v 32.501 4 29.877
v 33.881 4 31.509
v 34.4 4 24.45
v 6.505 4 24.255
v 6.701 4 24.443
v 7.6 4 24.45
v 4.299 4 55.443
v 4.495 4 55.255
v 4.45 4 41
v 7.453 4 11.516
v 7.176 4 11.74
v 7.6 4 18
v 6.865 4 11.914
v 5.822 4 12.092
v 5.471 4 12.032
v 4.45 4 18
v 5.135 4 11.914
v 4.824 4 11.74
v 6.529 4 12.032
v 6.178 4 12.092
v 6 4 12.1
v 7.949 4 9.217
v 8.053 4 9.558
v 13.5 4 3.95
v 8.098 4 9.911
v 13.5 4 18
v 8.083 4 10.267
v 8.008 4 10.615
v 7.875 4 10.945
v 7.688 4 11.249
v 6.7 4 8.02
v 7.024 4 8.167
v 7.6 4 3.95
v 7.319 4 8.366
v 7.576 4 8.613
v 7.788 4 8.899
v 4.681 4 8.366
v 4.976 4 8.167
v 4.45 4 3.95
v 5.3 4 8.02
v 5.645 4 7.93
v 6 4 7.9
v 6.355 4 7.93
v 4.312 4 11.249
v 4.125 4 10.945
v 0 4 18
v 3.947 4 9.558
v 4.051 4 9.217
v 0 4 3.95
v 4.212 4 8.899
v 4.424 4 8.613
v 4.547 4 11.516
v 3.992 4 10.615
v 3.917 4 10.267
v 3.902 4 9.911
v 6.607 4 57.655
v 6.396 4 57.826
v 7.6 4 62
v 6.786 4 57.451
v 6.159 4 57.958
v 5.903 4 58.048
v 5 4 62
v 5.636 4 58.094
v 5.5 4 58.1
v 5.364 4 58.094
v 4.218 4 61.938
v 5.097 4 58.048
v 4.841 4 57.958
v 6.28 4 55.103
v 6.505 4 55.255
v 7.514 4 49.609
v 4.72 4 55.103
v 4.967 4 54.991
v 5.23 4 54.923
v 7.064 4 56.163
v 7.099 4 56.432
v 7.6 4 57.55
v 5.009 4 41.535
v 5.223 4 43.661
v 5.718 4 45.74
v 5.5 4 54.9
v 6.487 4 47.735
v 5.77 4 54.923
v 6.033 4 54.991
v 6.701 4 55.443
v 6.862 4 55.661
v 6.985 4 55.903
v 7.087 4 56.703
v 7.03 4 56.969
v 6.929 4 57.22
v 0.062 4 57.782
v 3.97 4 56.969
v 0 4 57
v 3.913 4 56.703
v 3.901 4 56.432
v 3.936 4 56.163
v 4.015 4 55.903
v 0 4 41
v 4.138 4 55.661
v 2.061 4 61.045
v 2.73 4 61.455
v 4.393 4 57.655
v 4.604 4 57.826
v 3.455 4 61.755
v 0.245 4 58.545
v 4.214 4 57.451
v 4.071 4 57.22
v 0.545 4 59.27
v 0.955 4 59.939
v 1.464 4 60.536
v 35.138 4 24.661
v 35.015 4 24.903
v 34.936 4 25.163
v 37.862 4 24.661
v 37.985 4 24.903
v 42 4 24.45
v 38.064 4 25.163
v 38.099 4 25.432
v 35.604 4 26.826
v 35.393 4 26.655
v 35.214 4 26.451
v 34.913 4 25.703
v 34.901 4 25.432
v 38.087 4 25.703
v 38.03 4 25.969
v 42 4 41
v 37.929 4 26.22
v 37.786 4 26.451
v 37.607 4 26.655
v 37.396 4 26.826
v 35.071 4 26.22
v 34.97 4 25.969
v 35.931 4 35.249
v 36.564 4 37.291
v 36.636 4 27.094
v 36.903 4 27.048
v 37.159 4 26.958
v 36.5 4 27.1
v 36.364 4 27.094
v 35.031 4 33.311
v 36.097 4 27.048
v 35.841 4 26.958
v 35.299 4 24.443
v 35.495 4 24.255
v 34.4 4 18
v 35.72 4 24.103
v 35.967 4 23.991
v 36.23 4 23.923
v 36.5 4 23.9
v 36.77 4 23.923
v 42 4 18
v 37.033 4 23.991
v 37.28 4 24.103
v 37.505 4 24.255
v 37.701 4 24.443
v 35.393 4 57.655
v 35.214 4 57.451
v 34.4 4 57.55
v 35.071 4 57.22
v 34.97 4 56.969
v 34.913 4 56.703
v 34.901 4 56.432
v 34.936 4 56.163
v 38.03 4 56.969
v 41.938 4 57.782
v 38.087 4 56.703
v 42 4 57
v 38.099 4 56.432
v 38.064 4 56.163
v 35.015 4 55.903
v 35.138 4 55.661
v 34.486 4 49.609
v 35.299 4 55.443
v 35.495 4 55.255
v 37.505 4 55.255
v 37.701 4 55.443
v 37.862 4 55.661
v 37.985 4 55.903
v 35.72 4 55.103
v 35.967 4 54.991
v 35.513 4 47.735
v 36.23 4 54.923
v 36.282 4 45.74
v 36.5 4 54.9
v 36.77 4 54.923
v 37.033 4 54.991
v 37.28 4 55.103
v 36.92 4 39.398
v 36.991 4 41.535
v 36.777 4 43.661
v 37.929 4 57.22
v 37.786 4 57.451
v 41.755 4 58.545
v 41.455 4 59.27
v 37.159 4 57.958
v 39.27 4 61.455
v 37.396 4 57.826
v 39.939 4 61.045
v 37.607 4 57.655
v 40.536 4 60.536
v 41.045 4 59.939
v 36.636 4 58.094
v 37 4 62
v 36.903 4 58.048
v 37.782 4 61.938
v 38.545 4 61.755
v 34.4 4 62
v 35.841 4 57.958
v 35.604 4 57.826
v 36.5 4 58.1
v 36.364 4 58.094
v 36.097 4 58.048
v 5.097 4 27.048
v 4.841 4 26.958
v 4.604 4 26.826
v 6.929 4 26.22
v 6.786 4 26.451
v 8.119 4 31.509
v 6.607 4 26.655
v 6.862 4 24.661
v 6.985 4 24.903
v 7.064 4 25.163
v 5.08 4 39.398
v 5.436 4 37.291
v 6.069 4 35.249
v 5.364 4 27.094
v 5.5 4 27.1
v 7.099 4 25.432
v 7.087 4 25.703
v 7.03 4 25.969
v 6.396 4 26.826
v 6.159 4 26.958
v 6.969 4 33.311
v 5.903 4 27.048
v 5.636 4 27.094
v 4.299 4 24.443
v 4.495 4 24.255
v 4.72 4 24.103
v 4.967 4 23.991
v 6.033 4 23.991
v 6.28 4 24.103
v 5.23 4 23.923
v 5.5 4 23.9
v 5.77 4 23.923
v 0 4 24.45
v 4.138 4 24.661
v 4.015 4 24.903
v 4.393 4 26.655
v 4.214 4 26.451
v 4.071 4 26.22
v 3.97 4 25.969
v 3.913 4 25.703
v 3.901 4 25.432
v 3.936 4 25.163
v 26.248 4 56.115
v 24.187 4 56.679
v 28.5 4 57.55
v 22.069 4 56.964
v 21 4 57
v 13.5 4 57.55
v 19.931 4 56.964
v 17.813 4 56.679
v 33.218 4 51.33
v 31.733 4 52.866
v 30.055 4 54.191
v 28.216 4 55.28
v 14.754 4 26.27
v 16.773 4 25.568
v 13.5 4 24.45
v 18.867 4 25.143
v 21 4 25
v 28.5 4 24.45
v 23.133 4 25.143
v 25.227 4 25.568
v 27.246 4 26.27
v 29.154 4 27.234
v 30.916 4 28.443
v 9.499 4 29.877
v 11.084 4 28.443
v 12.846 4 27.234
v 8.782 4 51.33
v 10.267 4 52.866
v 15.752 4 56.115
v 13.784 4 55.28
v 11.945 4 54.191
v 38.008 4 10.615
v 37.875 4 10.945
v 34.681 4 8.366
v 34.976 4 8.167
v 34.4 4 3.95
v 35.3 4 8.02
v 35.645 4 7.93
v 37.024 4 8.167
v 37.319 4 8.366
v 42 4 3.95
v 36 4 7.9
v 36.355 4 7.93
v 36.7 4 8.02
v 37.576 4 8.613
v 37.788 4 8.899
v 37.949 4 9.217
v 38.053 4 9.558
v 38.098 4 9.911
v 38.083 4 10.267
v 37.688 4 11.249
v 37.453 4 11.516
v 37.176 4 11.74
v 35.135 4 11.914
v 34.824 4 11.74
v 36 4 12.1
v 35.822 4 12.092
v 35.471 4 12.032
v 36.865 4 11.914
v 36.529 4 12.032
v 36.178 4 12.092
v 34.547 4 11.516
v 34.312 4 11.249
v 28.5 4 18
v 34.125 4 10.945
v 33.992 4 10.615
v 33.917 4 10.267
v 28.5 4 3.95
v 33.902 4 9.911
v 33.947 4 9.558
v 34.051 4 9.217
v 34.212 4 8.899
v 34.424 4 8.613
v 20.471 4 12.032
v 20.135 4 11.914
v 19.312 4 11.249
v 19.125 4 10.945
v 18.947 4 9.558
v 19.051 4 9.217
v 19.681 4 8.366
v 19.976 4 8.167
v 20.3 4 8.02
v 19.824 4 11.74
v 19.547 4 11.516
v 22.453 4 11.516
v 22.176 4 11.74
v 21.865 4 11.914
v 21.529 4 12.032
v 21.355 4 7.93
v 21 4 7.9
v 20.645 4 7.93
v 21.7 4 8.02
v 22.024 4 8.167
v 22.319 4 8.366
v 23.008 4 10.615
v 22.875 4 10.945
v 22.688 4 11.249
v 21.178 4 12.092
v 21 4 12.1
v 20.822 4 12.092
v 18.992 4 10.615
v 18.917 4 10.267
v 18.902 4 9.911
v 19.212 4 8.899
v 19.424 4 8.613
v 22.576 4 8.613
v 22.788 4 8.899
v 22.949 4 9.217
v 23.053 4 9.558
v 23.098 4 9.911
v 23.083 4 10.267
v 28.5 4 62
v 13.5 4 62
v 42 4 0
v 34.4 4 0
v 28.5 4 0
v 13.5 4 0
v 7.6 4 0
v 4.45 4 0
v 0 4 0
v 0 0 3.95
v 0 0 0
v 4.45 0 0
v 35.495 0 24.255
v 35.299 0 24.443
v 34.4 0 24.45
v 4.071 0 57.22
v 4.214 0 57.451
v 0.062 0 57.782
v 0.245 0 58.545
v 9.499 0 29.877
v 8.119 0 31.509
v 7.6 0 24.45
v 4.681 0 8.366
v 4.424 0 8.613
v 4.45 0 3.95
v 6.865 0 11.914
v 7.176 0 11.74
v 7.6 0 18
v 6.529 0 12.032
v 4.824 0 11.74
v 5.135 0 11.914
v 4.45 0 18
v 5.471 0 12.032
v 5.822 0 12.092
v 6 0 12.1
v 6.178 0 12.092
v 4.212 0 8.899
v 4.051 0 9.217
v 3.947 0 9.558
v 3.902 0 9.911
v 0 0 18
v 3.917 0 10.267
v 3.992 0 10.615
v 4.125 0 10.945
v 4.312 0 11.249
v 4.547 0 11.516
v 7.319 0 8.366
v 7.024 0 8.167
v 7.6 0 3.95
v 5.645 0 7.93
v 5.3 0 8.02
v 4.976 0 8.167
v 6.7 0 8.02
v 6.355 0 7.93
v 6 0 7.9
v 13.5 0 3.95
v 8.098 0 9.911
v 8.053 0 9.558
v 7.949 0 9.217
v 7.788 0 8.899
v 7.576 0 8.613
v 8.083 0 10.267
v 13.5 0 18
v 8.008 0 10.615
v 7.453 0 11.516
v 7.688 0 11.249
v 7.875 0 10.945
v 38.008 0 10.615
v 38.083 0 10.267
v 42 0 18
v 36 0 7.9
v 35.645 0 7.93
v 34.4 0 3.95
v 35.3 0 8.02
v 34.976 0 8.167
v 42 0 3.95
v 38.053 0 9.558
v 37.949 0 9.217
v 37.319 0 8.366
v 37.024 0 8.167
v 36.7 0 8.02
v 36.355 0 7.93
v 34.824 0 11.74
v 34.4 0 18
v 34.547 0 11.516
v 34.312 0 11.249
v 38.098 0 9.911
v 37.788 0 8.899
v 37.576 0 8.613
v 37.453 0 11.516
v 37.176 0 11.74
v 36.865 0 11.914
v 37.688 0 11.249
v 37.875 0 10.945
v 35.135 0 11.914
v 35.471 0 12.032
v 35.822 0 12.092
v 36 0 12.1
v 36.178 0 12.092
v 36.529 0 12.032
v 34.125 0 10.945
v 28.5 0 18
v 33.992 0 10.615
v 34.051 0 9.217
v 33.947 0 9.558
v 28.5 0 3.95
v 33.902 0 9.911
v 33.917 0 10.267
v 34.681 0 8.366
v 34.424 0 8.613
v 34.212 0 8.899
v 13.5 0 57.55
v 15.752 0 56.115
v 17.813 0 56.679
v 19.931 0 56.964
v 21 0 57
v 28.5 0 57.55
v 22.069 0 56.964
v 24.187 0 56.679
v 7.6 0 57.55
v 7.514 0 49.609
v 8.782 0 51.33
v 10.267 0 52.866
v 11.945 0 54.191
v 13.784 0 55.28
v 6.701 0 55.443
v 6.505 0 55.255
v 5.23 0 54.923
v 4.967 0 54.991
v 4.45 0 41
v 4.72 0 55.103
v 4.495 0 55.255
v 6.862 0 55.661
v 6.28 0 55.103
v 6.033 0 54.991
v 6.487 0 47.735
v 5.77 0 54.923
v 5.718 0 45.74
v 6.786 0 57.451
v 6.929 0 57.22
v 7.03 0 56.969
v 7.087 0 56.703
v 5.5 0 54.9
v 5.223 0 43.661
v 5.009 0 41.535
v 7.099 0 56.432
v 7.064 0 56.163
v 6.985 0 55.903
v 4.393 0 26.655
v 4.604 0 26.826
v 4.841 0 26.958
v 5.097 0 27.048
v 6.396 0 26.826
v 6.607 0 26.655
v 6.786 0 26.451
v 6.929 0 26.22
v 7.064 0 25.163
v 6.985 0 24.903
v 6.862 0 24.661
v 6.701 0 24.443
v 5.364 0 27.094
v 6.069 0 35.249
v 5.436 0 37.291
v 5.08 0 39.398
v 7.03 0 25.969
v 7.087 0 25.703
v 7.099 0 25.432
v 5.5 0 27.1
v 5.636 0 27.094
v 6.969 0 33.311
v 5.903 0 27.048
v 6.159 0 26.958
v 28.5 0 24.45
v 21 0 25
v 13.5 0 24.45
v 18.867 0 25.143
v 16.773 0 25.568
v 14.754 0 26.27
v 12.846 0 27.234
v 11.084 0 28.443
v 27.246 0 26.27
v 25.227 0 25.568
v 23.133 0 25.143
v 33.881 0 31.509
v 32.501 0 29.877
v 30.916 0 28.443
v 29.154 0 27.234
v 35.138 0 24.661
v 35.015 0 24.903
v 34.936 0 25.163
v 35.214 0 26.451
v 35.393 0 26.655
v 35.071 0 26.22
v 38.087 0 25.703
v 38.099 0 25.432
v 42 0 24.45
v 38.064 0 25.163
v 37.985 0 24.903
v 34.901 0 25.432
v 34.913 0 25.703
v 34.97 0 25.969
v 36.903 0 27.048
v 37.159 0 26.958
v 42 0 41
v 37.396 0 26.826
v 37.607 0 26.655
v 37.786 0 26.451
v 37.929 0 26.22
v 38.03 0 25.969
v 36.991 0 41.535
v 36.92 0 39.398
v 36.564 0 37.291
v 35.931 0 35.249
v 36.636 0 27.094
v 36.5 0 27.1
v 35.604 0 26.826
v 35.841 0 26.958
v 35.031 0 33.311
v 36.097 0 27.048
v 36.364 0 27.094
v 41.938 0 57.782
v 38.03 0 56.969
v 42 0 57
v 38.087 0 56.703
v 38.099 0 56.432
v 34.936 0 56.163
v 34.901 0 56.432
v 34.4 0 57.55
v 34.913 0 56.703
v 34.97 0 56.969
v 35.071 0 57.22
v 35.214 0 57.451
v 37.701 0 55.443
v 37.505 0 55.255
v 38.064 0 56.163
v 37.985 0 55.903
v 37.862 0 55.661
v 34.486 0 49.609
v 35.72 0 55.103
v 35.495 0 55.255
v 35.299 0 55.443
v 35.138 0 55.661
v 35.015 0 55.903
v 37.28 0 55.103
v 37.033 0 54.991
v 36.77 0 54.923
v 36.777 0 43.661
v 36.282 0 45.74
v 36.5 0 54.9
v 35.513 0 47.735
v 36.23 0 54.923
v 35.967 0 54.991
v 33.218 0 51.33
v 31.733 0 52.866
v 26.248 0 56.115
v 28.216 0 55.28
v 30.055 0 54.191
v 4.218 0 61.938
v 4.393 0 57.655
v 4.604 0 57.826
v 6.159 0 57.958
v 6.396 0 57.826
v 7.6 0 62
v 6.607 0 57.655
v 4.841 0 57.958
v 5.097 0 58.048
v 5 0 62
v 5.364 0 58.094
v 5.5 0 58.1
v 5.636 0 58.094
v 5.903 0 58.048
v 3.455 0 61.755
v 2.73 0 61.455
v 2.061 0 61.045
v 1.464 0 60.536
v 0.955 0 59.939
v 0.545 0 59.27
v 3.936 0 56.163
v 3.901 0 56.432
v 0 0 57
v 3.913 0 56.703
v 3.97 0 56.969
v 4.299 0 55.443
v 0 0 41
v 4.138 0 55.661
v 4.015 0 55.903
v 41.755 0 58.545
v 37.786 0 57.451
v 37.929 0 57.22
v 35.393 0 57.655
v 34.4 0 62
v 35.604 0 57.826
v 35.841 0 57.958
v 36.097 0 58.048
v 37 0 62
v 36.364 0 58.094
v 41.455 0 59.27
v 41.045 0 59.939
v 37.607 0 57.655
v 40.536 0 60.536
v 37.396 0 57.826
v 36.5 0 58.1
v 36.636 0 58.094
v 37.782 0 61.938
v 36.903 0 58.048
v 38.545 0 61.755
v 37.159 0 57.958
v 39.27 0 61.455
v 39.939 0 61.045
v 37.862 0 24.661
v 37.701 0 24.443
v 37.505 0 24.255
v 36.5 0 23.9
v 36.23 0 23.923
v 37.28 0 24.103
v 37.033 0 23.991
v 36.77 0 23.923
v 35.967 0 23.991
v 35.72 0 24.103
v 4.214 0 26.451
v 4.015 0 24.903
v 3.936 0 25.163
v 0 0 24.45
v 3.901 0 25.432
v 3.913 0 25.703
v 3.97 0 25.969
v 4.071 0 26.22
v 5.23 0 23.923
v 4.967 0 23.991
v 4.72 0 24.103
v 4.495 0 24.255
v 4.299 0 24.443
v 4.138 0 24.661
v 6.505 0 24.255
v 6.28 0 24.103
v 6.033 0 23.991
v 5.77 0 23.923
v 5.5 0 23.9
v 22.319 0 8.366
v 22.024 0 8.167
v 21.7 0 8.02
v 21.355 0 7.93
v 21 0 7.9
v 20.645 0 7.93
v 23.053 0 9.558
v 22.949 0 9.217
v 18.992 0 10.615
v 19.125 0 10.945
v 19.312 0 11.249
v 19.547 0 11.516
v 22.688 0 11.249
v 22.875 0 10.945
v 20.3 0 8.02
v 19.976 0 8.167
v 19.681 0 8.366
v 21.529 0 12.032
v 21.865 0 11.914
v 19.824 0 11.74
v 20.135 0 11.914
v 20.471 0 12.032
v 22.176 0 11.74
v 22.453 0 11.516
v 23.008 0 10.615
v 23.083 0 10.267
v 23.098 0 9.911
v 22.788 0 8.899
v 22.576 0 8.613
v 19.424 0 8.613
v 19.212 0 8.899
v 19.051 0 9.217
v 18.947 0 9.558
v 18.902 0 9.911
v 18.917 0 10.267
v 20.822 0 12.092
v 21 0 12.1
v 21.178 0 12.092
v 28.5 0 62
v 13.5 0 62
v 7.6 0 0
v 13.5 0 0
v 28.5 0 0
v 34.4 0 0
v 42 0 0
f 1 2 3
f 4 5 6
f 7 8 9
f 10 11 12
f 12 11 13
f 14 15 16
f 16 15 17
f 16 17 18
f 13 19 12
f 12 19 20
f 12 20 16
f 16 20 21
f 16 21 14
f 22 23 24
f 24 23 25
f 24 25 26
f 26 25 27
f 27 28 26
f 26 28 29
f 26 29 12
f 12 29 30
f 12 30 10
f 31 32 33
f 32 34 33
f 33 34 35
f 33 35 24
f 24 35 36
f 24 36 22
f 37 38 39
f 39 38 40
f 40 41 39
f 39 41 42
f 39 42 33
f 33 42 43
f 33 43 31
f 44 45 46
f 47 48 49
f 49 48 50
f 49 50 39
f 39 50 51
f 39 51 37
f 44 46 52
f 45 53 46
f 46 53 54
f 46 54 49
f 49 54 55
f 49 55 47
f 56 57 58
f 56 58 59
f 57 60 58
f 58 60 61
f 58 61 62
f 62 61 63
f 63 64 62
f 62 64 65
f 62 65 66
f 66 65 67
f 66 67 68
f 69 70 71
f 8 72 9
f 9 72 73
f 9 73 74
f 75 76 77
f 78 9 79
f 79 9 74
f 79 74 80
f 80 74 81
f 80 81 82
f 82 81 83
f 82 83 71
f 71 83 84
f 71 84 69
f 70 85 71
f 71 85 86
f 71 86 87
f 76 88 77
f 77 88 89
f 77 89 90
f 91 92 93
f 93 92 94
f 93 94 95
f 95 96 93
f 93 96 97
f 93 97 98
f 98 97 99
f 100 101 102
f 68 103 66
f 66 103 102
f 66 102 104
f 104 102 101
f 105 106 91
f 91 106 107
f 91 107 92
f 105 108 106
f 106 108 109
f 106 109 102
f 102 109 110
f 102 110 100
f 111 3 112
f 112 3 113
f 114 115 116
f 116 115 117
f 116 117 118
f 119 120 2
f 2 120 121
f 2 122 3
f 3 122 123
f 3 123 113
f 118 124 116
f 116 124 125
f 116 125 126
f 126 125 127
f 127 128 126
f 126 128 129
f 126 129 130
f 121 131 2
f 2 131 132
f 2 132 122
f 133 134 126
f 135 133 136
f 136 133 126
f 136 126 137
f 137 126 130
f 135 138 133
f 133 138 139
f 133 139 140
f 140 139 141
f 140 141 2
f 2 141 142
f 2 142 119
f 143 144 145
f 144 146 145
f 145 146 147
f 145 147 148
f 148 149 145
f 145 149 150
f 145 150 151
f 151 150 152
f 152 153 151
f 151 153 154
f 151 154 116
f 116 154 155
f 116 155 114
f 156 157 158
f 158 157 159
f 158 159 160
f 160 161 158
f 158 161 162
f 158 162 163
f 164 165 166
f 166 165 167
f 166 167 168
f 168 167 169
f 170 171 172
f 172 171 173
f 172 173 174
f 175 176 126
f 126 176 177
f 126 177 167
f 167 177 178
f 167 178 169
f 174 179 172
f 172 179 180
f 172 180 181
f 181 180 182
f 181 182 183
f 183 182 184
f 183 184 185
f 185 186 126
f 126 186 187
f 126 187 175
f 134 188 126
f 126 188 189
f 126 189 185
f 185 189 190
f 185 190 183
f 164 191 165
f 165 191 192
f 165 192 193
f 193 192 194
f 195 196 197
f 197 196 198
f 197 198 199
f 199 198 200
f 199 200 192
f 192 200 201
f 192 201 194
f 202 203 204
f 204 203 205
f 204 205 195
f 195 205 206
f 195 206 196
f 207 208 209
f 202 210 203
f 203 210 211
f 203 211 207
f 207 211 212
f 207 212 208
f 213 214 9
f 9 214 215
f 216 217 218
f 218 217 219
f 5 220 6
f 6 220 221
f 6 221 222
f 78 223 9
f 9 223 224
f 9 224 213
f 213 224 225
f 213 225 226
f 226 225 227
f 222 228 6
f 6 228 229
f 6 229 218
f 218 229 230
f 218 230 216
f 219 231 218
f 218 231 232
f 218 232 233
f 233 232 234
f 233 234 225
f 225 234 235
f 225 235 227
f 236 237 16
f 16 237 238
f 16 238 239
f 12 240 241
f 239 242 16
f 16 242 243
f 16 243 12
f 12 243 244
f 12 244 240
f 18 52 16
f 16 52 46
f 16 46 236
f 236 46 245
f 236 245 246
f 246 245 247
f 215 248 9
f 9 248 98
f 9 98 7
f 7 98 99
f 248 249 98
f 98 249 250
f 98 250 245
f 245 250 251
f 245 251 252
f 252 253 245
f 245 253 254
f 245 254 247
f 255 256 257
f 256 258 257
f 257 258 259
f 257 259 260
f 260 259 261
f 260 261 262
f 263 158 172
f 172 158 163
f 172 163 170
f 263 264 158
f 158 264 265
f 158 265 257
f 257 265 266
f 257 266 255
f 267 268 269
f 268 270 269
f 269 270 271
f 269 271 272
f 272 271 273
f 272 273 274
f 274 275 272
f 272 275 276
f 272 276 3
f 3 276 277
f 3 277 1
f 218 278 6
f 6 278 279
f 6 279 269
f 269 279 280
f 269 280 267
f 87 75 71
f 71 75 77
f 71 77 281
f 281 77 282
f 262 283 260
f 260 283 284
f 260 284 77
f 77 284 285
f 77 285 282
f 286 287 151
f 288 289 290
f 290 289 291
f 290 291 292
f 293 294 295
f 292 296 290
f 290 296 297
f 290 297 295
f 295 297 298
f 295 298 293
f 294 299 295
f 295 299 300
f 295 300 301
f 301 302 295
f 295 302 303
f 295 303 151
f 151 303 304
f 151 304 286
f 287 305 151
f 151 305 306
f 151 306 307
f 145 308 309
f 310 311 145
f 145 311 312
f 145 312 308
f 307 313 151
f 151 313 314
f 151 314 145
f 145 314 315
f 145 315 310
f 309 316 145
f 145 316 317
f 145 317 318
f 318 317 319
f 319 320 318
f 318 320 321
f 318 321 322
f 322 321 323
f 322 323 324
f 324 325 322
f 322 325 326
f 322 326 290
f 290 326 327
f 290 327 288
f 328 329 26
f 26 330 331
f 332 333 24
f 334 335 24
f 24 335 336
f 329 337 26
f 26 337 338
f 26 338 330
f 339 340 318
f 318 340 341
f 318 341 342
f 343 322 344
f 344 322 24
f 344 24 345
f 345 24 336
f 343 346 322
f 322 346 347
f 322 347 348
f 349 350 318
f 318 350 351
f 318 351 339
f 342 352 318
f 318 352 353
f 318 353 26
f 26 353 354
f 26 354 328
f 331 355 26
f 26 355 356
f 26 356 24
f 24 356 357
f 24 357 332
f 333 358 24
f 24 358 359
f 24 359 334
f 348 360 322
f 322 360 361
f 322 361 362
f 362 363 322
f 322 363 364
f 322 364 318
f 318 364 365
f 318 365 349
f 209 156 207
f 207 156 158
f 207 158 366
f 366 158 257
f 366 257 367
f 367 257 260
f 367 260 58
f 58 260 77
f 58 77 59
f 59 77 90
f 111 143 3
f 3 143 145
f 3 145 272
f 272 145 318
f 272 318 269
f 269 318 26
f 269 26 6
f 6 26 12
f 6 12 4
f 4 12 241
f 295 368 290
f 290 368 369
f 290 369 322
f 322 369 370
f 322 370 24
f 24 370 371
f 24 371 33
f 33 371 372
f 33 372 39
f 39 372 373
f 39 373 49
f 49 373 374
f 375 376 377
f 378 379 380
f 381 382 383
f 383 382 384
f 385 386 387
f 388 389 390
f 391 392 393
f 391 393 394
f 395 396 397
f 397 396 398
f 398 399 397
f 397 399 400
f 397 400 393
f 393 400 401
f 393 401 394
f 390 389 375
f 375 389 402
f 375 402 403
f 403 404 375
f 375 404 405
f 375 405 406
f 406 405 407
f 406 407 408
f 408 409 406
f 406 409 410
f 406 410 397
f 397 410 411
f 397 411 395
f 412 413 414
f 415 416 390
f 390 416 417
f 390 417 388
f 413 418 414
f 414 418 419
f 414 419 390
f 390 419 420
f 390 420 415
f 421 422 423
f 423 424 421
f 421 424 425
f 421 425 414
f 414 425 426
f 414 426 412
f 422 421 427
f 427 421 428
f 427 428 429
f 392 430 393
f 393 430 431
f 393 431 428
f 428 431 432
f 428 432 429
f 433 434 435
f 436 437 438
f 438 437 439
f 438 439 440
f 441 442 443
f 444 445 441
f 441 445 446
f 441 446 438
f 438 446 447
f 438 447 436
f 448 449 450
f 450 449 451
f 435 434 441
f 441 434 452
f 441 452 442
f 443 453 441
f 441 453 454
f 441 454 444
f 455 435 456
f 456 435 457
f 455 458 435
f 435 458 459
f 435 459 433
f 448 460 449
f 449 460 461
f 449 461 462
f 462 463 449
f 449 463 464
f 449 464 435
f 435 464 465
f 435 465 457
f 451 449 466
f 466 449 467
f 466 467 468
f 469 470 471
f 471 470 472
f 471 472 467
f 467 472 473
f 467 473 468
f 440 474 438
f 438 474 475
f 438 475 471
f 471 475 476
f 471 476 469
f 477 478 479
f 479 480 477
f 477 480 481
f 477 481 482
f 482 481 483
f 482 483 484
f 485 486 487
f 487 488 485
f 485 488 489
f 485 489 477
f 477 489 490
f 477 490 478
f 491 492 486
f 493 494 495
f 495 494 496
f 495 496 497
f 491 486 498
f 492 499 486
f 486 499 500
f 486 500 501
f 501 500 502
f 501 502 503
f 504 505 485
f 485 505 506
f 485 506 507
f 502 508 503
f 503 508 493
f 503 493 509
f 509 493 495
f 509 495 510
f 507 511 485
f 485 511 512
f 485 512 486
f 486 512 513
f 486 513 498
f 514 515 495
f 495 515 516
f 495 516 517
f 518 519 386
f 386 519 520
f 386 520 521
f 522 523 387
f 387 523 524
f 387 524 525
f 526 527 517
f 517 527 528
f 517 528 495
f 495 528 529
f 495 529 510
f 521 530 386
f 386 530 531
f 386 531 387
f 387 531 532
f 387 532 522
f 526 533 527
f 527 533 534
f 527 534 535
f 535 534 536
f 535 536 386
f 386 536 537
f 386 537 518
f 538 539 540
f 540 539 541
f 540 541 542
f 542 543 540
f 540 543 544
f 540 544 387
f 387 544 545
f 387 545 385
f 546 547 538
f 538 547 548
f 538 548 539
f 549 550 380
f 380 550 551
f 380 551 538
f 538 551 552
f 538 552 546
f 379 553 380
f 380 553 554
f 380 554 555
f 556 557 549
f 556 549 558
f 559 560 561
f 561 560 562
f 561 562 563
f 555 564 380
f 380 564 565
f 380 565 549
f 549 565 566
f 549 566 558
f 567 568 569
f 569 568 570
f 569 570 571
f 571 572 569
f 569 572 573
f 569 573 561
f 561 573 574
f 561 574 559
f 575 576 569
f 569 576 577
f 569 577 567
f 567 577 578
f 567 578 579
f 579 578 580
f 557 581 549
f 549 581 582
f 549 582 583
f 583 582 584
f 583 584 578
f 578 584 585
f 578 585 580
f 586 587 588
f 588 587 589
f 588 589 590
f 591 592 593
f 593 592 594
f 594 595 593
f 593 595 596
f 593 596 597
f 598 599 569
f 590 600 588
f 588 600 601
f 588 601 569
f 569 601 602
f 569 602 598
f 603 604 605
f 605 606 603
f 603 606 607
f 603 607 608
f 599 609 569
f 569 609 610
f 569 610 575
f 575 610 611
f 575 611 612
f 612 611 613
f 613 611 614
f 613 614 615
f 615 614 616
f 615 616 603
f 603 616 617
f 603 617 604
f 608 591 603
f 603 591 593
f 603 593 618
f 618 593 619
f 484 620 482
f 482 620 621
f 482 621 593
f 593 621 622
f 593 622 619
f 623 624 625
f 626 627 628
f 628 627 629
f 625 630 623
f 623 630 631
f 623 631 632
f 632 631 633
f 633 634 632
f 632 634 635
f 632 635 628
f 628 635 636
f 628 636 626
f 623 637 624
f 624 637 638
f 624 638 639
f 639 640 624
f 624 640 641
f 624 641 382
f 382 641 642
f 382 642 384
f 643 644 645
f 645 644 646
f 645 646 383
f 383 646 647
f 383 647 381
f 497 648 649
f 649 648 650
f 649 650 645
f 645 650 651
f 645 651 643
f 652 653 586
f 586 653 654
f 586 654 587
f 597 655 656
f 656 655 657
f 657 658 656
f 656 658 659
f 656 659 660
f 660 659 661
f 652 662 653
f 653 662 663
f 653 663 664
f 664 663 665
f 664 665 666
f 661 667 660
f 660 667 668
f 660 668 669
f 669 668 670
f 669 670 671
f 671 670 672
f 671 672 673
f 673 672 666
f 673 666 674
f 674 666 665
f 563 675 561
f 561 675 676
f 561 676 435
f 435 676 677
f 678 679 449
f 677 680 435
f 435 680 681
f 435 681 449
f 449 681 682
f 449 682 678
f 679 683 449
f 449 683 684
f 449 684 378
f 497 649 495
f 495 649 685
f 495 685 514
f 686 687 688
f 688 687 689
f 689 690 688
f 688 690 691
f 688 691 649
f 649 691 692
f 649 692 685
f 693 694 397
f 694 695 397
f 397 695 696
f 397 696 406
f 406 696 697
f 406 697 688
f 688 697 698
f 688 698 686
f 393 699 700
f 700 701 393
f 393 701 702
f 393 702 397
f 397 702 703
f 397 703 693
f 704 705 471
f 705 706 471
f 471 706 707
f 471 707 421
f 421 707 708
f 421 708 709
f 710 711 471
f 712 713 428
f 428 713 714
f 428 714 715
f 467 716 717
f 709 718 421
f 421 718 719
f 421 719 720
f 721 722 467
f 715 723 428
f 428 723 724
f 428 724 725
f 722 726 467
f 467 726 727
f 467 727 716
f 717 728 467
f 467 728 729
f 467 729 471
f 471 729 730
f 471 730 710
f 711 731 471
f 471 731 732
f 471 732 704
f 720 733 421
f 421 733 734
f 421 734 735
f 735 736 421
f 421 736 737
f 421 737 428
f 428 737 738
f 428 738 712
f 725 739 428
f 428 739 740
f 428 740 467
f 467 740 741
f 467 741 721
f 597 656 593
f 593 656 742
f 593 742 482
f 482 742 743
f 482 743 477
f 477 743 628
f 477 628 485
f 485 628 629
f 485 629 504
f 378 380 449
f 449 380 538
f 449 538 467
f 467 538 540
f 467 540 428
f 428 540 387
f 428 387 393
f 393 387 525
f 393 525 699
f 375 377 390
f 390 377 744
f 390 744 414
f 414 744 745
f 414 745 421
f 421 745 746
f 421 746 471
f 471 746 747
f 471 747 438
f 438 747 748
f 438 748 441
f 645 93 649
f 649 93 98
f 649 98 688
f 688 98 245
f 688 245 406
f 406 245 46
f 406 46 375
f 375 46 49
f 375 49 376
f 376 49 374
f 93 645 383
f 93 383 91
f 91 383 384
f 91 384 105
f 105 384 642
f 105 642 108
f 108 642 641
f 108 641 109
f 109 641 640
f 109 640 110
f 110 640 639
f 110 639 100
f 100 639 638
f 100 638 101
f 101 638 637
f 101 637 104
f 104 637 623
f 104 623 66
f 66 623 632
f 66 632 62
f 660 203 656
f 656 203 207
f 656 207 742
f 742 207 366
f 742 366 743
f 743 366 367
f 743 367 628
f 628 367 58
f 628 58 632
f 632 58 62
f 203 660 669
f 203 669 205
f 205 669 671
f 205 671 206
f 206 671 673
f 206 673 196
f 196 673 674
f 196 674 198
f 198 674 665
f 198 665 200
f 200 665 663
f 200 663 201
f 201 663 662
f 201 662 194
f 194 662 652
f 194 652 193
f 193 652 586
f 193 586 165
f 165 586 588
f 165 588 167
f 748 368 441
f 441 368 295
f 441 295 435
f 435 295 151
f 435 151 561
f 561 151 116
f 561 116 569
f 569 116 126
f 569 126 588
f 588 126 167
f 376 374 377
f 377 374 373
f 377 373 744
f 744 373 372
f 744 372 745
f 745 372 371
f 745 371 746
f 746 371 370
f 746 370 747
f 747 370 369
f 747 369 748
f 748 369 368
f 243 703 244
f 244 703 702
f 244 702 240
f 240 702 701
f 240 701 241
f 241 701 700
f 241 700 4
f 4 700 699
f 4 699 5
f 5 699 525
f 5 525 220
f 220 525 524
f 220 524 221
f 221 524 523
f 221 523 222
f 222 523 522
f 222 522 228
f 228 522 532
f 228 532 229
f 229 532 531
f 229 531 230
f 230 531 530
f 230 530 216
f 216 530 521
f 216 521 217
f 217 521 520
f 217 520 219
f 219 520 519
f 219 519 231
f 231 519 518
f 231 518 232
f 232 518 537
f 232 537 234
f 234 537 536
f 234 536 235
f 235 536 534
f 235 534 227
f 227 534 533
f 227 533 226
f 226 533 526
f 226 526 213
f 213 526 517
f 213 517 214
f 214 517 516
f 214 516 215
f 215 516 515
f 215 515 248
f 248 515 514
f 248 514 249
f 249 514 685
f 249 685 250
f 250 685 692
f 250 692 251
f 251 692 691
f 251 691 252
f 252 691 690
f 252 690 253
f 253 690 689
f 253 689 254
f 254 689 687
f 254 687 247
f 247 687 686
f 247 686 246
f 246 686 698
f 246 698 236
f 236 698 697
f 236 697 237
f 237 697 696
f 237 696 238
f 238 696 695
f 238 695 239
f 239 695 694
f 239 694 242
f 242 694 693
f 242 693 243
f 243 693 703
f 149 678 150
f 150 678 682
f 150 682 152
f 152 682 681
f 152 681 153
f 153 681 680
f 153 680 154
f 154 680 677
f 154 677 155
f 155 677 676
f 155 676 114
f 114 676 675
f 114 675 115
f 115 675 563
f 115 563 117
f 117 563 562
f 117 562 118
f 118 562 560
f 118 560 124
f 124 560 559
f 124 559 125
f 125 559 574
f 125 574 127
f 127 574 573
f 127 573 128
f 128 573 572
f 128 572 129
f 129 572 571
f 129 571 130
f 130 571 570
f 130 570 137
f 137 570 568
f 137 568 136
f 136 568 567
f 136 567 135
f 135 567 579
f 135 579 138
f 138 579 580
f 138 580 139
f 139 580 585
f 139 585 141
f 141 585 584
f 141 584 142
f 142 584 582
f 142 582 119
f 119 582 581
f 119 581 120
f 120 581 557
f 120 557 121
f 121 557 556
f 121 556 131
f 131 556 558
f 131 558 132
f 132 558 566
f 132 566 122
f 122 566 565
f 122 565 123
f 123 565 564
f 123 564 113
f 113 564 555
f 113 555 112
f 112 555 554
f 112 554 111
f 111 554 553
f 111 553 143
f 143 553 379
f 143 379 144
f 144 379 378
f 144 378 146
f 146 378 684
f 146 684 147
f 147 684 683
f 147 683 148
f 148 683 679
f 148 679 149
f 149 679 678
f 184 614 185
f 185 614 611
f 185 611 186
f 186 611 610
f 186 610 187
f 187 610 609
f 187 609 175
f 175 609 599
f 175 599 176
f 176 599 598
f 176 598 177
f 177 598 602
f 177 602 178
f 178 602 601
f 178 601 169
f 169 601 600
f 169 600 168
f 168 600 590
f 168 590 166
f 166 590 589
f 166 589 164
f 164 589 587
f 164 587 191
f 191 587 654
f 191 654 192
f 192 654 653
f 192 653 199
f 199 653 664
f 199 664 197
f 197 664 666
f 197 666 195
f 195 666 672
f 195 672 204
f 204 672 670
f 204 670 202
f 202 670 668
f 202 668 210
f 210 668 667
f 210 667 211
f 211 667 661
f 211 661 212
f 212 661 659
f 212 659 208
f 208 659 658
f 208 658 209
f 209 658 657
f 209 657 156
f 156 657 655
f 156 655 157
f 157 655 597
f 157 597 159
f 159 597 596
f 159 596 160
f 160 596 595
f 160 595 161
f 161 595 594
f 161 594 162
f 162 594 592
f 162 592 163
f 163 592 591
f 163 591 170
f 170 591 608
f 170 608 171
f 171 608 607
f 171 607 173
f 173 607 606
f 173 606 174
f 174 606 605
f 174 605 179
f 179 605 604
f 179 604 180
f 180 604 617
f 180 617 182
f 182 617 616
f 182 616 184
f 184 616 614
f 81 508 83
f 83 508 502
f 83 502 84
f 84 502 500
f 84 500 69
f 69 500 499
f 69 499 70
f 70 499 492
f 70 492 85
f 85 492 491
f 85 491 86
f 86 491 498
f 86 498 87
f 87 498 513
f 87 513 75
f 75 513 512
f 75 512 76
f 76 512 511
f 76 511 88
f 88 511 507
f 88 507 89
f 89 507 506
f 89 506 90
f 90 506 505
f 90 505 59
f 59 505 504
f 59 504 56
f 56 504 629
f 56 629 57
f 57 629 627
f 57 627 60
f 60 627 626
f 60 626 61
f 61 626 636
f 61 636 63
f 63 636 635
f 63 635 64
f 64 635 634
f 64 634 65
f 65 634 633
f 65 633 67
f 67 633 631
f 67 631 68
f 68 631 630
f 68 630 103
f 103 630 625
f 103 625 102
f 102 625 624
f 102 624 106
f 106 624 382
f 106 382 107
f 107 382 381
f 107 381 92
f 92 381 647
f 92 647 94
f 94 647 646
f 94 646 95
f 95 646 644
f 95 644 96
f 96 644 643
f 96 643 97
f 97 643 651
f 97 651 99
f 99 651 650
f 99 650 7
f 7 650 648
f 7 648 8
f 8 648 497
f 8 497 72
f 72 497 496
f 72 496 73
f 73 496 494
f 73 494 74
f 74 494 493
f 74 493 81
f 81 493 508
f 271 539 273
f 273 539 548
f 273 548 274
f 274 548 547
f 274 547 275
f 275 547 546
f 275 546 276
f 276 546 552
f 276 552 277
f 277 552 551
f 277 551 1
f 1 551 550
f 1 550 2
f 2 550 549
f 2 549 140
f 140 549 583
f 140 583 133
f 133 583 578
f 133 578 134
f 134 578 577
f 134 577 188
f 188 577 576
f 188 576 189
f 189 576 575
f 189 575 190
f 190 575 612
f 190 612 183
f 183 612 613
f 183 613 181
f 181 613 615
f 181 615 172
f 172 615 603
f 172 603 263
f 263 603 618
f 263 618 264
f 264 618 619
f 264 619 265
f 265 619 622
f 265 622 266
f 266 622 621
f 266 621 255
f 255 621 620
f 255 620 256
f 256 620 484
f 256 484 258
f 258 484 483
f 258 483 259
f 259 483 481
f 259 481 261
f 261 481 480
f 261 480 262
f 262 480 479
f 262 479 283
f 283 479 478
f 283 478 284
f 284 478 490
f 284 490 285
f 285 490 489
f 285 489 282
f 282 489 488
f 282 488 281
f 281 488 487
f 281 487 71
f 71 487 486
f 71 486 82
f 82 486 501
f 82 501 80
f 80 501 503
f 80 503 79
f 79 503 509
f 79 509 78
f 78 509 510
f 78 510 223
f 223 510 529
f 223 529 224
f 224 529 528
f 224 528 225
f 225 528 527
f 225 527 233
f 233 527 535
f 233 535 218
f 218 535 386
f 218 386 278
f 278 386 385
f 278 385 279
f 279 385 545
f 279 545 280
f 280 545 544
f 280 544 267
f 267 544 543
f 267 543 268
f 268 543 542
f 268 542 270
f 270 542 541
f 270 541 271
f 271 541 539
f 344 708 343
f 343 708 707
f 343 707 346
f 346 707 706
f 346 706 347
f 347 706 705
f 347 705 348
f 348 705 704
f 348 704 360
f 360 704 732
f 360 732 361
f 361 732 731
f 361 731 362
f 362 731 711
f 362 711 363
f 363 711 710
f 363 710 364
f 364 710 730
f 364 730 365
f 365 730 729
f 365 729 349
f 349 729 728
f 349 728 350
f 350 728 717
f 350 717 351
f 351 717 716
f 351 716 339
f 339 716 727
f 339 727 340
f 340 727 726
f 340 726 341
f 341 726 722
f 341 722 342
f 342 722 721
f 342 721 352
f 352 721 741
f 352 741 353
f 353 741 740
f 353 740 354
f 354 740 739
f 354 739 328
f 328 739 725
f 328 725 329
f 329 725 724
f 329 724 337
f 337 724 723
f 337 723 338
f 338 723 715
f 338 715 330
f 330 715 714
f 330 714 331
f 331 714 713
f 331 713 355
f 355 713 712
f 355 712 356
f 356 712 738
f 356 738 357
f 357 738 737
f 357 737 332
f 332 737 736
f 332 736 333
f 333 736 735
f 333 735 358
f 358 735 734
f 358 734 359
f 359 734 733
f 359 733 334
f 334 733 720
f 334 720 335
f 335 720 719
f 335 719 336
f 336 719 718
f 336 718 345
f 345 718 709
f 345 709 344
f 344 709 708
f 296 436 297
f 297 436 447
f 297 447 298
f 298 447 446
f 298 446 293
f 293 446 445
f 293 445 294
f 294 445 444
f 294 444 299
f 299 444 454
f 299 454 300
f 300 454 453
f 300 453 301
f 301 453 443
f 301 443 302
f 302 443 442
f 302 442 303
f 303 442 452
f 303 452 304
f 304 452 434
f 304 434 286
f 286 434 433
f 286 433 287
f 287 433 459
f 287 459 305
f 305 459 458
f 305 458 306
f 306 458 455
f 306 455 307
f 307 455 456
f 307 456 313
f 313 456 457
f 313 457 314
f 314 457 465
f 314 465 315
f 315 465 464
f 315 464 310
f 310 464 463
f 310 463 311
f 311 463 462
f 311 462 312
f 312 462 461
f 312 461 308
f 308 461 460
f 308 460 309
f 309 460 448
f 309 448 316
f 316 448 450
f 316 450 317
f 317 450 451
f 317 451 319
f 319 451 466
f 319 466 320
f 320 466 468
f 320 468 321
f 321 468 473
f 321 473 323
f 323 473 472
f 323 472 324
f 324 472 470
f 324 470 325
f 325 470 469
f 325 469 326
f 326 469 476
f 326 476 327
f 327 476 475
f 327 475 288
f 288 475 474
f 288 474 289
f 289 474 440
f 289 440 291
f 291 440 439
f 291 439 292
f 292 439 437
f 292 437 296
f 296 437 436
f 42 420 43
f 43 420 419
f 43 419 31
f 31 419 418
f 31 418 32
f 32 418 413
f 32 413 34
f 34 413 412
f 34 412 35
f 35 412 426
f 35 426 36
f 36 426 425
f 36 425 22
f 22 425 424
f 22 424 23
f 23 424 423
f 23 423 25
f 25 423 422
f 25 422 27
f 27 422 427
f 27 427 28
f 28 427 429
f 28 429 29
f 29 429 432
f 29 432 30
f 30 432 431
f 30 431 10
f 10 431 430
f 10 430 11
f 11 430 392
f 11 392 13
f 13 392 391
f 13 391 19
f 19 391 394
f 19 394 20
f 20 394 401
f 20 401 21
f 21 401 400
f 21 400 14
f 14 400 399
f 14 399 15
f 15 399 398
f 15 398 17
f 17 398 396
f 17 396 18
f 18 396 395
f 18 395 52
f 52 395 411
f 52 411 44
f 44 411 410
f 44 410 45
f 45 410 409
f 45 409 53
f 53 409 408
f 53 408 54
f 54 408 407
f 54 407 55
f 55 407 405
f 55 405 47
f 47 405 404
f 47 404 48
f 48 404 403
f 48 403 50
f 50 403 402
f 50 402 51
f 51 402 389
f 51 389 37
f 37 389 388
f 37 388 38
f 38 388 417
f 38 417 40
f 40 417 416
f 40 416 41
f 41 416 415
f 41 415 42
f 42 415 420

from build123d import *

# Parameters (mm, degrees)
SKETCH_1_R      = 1.6
SKETCH_1_R_2    = 16
SKETCH_1_R_3    = 2.1
EXTRUDE_1_DEPTH = 4


with BuildPart() as part:
    # 草图1 → 凸台-拉伸1 (new body)
    with BuildSketch(Plane(origin=(0, 0, 0), x_dir=(1, 0, 0), z_dir=(0, 1, 0))):
        with BuildLine():
            Line((0, 0), (42, 0))
            Line((42, 0), (42, -57))
            ThreePointArc((42, -57), (40.535533906, -60.535533906), (37, -62))
            Line((37, -62), (5, -62))
            ThreePointArc((5, -62), (1.464466094, -60.535533906), (0, -57))
            Line((0, -57), (0, 0))
        make_face()
        with Locations(Location((5.5, -25.5, 0), (0, 0, 270))):
            Circle(SKETCH_1_R, mode=Mode.SUBTRACT)
        with Locations(Location((36.5, -25.5, 0), (0, 0, 270))):
            Circle(SKETCH_1_R, mode=Mode.SUBTRACT)
        with Locations(Location((36.5, -56.5, 0), (0, 0, 270))):
            Circle(SKETCH_1_R, mode=Mode.SUBTRACT)
        with Locations(Location((5.5, -56.5, 0), (0, 0, 270))):
            Circle(SKETCH_1_R, mode=Mode.SUBTRACT)
        with Locations(Location((21, -41, 0), (0, 0, 270))):
            Circle(SKETCH_1_R_2, mode=Mode.SUBTRACT)
        with Locations(Location((21, -10, 0), (0, 0, 270))):
            Circle(SKETCH_1_R_3, mode=Mode.SUBTRACT)
        with Locations(Location((36, -10, 0), (0, 0, 270))):
            Circle(SKETCH_1_R_3, mode=Mode.SUBTRACT)
        with Locations(Location((6, -10, 0), (0, 0, 270))):
            Circle(SKETCH_1_R_3, mode=Mode.SUBTRACT)
    extrude(amount=EXTRUDE_1_DEPTH)


solid = part.part
